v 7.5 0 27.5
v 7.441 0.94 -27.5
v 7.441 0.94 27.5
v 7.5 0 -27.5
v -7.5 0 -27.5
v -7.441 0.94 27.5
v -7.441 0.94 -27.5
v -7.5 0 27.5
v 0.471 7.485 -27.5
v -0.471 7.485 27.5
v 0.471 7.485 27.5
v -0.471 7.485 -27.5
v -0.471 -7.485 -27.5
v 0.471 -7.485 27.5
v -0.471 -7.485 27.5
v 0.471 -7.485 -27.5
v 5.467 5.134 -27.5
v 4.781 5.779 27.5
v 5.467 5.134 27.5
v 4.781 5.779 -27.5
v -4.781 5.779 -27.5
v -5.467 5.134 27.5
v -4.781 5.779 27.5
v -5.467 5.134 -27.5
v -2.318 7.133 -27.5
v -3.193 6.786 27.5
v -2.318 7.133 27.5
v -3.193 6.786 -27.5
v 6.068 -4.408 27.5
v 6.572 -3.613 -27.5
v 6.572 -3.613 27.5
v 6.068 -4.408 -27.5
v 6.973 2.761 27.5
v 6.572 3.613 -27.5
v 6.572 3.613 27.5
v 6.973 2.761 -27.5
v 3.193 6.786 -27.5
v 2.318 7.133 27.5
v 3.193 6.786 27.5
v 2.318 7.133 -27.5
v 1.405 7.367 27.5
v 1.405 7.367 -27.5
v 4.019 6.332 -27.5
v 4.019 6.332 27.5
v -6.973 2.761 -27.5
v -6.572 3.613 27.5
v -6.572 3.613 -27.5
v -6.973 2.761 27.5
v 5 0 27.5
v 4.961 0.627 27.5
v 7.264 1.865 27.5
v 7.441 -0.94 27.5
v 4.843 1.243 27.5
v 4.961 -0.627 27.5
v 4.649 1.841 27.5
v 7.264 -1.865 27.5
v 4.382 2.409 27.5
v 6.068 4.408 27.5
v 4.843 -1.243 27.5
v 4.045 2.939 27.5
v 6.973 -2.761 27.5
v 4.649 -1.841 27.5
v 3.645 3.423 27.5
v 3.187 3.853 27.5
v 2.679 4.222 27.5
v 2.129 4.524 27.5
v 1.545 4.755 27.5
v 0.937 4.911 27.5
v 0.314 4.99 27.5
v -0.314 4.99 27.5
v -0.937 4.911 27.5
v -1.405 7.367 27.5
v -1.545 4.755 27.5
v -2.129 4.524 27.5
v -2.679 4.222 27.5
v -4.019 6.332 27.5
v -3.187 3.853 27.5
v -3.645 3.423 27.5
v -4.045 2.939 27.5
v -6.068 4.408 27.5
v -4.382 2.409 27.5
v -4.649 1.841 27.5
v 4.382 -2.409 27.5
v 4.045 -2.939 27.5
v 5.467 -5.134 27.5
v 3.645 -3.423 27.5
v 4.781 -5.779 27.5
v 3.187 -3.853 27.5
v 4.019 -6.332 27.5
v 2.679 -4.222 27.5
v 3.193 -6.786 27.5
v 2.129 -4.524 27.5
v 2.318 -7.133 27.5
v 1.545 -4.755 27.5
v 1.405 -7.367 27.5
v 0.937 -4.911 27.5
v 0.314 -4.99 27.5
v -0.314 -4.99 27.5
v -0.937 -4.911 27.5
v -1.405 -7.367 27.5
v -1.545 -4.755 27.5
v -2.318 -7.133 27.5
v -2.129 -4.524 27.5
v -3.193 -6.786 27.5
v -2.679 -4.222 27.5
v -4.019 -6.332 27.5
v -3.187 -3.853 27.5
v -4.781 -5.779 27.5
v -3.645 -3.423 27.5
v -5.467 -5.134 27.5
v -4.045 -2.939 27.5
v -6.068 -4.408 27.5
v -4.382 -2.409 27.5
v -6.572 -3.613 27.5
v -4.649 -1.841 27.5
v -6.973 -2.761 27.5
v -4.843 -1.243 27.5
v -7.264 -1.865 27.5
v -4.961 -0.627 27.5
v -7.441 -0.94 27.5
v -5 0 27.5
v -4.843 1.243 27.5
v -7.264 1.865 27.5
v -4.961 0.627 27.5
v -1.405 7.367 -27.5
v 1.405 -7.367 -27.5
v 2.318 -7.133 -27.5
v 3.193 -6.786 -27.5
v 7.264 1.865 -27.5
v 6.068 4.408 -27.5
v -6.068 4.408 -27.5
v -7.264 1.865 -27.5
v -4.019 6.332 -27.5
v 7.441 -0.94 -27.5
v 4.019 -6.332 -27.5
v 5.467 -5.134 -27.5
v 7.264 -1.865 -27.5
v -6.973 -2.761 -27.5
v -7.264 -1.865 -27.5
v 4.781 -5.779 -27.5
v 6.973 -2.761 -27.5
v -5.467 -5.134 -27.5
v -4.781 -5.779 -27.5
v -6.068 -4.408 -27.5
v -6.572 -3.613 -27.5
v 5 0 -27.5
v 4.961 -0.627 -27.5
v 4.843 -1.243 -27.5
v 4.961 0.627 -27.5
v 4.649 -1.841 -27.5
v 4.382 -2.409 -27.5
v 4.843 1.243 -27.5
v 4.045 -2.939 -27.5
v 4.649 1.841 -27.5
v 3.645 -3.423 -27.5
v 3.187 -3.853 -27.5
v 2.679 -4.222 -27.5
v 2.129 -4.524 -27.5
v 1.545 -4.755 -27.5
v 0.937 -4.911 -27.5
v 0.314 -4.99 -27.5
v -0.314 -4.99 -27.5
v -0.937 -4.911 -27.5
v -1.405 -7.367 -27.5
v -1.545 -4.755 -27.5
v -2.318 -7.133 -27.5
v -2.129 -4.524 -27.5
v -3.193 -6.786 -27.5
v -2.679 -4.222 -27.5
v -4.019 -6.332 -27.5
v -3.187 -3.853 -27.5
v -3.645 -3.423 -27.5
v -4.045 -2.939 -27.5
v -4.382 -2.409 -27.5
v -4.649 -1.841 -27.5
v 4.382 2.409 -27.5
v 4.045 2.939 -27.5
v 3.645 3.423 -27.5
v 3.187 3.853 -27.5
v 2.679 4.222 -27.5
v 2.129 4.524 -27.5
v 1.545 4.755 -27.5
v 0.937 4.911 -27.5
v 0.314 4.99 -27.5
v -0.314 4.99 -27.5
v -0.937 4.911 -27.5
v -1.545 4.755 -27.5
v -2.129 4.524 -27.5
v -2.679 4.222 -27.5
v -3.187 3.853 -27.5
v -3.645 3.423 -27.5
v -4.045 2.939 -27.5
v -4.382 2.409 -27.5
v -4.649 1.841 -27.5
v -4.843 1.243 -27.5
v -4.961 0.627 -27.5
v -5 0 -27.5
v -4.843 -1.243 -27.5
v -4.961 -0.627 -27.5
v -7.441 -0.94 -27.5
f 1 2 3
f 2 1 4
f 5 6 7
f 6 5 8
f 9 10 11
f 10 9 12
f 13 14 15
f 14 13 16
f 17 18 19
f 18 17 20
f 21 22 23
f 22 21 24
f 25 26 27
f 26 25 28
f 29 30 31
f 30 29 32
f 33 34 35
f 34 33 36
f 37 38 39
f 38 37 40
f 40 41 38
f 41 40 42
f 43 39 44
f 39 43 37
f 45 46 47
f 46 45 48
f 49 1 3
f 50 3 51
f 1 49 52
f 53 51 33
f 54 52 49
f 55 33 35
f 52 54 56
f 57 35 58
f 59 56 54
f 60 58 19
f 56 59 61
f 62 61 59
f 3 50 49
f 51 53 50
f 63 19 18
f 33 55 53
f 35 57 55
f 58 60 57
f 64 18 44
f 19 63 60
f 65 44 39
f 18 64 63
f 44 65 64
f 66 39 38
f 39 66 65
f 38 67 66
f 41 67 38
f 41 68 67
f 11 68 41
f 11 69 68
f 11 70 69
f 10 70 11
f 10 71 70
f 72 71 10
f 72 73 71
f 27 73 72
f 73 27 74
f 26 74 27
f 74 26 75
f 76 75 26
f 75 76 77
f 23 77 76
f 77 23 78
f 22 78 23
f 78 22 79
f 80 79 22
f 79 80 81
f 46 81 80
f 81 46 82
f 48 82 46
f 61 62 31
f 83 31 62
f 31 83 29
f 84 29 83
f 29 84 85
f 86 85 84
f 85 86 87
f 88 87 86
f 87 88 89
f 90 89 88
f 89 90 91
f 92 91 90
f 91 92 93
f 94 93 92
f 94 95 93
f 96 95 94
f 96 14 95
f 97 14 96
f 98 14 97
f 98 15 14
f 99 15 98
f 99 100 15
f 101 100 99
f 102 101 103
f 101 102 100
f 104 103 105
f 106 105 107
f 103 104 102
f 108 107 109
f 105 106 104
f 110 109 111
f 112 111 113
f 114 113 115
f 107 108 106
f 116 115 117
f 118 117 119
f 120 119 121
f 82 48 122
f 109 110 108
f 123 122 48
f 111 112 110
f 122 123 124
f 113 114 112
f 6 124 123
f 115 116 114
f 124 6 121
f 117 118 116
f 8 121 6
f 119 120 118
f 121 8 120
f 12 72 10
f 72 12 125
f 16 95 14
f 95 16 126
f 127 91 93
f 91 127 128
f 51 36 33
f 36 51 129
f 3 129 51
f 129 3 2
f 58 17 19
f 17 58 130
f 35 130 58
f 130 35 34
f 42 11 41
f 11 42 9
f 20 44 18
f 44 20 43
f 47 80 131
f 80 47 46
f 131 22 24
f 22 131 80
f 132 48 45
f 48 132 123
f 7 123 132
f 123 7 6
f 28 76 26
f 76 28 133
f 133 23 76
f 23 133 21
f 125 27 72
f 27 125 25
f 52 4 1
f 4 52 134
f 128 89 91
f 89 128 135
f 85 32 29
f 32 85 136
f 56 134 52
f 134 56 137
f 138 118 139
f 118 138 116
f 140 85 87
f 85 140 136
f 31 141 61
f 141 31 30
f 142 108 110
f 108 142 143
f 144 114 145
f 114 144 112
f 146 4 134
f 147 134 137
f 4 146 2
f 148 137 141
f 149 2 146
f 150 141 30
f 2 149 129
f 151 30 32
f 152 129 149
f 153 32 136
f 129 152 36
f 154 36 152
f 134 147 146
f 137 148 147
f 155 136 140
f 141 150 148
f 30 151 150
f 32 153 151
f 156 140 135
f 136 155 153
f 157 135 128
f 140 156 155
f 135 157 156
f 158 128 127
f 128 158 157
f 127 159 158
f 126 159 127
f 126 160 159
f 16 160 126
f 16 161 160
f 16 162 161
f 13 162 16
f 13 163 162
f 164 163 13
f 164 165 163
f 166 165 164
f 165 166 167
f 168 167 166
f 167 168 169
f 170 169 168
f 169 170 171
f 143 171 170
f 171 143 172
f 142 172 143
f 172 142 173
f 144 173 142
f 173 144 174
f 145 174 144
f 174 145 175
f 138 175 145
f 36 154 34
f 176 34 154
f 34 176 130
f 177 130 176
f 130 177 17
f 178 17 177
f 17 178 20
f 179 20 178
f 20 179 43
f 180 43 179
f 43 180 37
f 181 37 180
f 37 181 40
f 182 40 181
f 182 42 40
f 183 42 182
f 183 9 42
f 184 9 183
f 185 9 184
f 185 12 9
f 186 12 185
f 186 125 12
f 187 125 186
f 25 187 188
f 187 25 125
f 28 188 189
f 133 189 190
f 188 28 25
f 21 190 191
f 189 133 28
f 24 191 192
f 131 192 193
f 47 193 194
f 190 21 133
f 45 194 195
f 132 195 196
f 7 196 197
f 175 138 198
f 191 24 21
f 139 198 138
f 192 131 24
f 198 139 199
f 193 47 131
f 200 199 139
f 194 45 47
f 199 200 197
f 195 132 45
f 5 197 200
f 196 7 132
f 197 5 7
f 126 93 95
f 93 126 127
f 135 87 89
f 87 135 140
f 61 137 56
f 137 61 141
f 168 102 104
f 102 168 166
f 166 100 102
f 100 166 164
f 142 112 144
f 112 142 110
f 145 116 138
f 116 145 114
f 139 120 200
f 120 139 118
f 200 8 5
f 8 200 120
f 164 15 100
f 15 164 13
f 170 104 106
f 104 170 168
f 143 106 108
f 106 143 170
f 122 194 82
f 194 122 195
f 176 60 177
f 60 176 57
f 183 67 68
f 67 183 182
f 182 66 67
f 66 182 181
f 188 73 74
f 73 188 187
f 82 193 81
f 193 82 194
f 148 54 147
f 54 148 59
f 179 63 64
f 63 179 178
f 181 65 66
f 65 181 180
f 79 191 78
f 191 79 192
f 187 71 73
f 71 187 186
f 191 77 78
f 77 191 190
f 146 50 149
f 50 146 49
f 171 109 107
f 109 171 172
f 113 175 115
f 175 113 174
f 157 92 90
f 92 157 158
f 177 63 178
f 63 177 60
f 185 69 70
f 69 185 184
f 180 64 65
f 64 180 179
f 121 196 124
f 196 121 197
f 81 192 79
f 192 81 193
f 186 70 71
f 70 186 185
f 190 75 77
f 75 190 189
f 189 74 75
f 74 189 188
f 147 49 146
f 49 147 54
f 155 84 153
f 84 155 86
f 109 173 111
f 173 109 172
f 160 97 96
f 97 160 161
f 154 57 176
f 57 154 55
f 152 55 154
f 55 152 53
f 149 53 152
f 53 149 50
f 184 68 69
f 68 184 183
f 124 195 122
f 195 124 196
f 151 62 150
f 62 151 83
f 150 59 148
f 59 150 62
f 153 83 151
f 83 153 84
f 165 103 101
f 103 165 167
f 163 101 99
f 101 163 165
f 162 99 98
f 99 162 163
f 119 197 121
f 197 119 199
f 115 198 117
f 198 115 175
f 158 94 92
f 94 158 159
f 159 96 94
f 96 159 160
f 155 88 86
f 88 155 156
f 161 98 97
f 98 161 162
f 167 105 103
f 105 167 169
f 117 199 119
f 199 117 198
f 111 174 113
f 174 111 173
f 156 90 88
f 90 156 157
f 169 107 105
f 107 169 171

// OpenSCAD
$fn = 50;


difference() {
	union() {
		translate(v = [0, 0, -27.5000000000]) {
			cylinder(h = 55, r = 7.5000000000);
		}
	}
	union() {
		translate(v = [0, 0, -100.0000000000]) {
			cylinder(h = 200, r = 5);
		}
	}
}
